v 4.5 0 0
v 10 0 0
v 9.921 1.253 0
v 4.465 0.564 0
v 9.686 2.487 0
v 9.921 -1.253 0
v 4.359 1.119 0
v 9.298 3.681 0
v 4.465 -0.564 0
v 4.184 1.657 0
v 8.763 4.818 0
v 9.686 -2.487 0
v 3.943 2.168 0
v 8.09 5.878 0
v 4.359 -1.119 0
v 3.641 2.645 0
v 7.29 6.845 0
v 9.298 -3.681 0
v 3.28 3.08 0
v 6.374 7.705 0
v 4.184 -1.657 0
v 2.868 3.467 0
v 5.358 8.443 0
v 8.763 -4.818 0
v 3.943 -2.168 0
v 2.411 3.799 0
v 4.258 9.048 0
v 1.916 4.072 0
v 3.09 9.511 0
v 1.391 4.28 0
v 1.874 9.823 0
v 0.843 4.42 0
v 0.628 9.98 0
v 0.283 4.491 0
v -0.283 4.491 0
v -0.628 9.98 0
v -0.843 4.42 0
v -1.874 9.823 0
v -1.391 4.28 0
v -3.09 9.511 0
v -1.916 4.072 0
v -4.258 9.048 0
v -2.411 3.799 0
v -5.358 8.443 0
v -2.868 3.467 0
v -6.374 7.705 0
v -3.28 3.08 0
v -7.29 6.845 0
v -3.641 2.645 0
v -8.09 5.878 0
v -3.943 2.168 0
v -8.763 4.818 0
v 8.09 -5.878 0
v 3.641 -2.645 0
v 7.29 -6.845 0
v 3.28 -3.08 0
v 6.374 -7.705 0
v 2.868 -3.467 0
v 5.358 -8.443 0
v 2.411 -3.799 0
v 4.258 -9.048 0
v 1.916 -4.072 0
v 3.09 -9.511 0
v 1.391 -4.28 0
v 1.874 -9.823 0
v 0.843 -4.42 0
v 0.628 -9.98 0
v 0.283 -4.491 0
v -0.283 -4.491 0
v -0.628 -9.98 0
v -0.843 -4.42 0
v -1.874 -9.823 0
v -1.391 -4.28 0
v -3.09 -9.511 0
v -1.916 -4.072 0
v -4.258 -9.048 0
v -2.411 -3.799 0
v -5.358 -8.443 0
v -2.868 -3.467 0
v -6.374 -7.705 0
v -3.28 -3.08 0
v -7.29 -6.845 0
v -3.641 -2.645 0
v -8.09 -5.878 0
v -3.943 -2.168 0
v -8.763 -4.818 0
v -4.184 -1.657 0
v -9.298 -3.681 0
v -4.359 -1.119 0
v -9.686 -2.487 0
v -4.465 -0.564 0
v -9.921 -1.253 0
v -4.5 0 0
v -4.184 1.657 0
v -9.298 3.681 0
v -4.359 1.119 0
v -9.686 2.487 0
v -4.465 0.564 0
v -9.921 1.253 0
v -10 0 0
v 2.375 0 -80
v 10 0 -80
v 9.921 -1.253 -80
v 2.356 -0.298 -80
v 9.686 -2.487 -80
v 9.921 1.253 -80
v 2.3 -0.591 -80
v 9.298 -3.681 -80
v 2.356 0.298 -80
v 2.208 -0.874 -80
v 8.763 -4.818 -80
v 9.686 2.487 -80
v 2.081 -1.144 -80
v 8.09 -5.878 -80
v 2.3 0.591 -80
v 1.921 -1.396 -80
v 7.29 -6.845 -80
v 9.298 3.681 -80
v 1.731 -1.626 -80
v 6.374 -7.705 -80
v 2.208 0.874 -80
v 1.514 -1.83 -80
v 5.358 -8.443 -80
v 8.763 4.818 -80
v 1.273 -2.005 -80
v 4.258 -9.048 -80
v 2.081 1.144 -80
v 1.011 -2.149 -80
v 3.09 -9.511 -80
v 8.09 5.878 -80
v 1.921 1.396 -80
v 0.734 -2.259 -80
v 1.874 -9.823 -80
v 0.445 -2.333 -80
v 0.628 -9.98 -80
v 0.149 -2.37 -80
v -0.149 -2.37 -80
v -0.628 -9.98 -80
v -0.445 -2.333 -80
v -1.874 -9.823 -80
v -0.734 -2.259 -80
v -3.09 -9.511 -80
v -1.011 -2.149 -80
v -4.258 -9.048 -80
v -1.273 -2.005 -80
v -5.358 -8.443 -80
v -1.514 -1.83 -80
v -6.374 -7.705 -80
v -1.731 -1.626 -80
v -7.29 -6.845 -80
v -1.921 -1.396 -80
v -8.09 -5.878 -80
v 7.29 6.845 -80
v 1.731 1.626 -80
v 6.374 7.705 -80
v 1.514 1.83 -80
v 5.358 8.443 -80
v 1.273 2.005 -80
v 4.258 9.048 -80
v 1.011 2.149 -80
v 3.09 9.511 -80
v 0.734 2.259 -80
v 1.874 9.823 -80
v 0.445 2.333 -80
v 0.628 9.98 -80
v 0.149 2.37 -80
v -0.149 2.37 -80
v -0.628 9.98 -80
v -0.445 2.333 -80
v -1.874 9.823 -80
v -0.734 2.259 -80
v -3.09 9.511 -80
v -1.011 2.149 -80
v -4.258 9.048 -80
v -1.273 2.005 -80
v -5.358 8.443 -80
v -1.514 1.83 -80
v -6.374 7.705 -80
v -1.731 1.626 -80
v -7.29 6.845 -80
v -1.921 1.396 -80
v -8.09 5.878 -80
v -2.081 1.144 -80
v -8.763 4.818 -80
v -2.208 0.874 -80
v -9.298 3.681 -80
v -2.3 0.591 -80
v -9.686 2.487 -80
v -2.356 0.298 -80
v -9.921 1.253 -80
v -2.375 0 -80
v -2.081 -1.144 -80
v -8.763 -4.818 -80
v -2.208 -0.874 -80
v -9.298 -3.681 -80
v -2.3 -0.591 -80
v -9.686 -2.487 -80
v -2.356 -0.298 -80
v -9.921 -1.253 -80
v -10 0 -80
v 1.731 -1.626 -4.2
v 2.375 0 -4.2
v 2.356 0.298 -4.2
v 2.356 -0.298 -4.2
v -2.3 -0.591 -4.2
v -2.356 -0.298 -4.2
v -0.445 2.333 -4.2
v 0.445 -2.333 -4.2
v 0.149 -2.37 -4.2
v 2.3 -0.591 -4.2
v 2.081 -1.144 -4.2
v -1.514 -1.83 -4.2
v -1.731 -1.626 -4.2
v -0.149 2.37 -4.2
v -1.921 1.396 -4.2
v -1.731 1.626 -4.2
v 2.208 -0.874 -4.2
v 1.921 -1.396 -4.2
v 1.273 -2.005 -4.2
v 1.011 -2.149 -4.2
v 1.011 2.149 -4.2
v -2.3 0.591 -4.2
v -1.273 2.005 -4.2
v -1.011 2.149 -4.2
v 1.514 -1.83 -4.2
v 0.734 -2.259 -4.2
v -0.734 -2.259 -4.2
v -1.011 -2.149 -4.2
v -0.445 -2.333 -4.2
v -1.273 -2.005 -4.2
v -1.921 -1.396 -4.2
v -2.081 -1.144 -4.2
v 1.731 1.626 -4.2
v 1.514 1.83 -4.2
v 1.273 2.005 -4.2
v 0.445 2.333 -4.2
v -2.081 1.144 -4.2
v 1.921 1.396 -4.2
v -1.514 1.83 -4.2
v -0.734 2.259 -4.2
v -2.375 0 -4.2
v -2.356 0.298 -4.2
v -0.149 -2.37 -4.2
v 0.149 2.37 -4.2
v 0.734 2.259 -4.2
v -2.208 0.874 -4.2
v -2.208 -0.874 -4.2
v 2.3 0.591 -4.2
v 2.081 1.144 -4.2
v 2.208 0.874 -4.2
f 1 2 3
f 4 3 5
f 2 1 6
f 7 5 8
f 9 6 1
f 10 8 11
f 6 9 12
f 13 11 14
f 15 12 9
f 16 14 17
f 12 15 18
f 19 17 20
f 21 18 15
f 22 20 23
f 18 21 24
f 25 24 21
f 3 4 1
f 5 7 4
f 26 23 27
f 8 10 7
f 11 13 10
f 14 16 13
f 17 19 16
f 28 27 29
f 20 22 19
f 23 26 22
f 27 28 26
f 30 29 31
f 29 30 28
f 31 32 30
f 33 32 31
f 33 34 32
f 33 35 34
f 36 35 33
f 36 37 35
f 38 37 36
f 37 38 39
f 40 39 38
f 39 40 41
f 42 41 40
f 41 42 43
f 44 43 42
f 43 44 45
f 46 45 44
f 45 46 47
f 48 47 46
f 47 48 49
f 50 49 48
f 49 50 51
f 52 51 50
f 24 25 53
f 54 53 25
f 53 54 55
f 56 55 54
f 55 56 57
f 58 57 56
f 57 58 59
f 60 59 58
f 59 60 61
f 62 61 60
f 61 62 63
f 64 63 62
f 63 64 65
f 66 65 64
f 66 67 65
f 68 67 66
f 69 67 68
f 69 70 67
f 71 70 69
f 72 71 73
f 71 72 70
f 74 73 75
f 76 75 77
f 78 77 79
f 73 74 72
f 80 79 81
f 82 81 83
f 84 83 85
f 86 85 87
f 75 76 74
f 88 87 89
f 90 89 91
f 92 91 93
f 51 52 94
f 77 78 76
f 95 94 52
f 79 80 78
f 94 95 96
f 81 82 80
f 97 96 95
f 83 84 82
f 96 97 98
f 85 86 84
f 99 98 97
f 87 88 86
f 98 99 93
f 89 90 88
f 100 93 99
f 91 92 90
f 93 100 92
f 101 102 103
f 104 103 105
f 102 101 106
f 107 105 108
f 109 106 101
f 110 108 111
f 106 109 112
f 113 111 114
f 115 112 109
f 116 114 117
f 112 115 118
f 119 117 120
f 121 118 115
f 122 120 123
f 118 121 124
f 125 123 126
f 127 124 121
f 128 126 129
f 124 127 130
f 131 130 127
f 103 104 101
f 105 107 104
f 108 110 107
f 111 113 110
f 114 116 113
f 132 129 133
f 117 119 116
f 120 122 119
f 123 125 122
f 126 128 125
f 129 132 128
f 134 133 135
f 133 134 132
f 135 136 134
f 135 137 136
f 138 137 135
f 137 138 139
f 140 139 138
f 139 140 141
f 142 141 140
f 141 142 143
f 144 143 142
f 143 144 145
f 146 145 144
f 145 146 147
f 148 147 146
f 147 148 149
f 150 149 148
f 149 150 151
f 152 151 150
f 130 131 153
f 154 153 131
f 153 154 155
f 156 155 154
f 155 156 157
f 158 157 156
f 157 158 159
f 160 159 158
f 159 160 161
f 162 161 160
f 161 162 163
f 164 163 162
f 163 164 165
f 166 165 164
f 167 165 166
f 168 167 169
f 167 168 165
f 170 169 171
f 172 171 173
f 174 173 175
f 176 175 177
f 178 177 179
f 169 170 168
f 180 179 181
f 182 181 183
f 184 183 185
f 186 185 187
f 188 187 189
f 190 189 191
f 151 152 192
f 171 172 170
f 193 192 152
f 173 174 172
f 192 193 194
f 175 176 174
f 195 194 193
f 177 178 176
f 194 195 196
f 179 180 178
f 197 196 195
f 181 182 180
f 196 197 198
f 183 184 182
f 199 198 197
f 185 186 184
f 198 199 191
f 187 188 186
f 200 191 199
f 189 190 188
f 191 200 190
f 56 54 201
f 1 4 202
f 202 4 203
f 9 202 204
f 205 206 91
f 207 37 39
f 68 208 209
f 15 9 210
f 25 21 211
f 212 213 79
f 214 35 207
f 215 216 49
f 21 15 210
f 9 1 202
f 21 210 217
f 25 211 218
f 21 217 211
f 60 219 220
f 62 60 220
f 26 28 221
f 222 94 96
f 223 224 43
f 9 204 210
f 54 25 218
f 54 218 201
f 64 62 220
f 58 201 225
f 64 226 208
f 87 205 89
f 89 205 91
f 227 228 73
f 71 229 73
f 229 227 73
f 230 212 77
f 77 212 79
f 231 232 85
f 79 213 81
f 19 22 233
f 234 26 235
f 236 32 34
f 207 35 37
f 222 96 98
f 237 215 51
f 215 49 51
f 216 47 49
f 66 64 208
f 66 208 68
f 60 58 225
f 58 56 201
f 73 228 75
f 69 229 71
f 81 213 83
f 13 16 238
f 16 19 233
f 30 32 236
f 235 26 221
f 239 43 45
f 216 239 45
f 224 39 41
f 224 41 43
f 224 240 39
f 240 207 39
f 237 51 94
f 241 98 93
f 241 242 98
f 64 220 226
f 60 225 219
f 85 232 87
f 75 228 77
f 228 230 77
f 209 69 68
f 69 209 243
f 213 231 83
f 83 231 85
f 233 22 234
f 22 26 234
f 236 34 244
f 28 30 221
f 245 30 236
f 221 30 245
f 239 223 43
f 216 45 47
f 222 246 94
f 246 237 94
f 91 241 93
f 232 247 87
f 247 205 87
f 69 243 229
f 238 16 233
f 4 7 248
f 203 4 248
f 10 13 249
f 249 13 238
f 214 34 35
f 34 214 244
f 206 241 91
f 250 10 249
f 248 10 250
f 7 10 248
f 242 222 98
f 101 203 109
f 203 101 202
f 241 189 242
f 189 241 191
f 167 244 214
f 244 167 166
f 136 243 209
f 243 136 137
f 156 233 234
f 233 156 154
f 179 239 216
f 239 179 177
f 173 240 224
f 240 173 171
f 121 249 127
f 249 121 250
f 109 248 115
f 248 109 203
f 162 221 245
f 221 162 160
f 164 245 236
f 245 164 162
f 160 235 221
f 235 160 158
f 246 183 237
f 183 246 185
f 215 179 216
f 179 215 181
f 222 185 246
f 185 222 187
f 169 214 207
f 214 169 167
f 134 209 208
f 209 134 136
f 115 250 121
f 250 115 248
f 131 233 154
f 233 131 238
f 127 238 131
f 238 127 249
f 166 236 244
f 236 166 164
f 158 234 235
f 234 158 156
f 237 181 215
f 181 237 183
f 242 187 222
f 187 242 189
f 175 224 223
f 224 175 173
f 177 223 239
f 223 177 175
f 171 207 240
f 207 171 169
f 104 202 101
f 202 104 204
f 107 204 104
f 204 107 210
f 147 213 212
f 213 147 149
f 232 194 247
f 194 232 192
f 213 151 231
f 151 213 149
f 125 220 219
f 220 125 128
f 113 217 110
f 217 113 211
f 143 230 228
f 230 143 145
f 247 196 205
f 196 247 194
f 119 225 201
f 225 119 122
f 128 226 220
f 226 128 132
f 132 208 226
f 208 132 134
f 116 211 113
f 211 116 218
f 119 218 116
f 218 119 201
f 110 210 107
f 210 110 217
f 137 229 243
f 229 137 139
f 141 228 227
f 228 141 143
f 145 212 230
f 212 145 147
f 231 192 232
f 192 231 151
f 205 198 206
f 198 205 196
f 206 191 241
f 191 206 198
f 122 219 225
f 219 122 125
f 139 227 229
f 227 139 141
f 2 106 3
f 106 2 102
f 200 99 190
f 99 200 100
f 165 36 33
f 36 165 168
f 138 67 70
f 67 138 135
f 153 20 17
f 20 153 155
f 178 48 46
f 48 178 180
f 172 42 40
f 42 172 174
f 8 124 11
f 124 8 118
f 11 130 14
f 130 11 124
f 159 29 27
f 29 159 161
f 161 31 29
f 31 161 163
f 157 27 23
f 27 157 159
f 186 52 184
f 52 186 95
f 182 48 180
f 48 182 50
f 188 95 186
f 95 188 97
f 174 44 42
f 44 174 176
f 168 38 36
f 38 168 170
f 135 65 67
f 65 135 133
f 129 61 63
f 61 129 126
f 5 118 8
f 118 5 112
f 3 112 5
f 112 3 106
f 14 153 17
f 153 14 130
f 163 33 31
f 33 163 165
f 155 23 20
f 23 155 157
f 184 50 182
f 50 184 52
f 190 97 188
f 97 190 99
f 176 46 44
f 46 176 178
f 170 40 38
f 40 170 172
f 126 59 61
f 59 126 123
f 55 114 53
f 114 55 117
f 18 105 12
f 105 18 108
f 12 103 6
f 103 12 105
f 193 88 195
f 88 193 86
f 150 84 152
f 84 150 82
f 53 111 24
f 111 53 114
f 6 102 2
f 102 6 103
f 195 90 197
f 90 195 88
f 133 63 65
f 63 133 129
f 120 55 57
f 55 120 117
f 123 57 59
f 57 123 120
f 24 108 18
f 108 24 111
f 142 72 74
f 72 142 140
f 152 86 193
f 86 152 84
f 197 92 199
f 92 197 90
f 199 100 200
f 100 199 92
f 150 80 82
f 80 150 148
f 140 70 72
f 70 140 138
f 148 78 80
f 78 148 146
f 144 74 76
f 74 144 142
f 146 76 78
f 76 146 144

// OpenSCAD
$fn = 50;


difference() {
	union() {
		translate(v = [0, 0, -80.0000000000]) {
			cylinder(h = 80, r = 10.0000000000);
		}
	}
	union() {
		translate(v = [0, 0, 0]) {
			rotate(a = [0, 0, 0]) {
				difference() {
					union() {
						#translate(v = [0, 0, -80.0000000000]) {
							cylinder(h = 80, r = 2.2500000000);
						}
						#translate(v = [0, 0, -4.2000000000]) {
							cylinder(h = 4.2000000000, r1 = 2.3750000000, r2 = 4.5000000000);
						}
						#translate(v = [0, 0, -80.0000000000]) {
							cylinder(h = 80, r = 2.3750000000);
						}
						#translate(v = [0, 0, -80.0000000000]) {
							cylinder(h = 80, r = 2.2500000000);
						}
					}
					union();
				}
			}
		}
	}
}
